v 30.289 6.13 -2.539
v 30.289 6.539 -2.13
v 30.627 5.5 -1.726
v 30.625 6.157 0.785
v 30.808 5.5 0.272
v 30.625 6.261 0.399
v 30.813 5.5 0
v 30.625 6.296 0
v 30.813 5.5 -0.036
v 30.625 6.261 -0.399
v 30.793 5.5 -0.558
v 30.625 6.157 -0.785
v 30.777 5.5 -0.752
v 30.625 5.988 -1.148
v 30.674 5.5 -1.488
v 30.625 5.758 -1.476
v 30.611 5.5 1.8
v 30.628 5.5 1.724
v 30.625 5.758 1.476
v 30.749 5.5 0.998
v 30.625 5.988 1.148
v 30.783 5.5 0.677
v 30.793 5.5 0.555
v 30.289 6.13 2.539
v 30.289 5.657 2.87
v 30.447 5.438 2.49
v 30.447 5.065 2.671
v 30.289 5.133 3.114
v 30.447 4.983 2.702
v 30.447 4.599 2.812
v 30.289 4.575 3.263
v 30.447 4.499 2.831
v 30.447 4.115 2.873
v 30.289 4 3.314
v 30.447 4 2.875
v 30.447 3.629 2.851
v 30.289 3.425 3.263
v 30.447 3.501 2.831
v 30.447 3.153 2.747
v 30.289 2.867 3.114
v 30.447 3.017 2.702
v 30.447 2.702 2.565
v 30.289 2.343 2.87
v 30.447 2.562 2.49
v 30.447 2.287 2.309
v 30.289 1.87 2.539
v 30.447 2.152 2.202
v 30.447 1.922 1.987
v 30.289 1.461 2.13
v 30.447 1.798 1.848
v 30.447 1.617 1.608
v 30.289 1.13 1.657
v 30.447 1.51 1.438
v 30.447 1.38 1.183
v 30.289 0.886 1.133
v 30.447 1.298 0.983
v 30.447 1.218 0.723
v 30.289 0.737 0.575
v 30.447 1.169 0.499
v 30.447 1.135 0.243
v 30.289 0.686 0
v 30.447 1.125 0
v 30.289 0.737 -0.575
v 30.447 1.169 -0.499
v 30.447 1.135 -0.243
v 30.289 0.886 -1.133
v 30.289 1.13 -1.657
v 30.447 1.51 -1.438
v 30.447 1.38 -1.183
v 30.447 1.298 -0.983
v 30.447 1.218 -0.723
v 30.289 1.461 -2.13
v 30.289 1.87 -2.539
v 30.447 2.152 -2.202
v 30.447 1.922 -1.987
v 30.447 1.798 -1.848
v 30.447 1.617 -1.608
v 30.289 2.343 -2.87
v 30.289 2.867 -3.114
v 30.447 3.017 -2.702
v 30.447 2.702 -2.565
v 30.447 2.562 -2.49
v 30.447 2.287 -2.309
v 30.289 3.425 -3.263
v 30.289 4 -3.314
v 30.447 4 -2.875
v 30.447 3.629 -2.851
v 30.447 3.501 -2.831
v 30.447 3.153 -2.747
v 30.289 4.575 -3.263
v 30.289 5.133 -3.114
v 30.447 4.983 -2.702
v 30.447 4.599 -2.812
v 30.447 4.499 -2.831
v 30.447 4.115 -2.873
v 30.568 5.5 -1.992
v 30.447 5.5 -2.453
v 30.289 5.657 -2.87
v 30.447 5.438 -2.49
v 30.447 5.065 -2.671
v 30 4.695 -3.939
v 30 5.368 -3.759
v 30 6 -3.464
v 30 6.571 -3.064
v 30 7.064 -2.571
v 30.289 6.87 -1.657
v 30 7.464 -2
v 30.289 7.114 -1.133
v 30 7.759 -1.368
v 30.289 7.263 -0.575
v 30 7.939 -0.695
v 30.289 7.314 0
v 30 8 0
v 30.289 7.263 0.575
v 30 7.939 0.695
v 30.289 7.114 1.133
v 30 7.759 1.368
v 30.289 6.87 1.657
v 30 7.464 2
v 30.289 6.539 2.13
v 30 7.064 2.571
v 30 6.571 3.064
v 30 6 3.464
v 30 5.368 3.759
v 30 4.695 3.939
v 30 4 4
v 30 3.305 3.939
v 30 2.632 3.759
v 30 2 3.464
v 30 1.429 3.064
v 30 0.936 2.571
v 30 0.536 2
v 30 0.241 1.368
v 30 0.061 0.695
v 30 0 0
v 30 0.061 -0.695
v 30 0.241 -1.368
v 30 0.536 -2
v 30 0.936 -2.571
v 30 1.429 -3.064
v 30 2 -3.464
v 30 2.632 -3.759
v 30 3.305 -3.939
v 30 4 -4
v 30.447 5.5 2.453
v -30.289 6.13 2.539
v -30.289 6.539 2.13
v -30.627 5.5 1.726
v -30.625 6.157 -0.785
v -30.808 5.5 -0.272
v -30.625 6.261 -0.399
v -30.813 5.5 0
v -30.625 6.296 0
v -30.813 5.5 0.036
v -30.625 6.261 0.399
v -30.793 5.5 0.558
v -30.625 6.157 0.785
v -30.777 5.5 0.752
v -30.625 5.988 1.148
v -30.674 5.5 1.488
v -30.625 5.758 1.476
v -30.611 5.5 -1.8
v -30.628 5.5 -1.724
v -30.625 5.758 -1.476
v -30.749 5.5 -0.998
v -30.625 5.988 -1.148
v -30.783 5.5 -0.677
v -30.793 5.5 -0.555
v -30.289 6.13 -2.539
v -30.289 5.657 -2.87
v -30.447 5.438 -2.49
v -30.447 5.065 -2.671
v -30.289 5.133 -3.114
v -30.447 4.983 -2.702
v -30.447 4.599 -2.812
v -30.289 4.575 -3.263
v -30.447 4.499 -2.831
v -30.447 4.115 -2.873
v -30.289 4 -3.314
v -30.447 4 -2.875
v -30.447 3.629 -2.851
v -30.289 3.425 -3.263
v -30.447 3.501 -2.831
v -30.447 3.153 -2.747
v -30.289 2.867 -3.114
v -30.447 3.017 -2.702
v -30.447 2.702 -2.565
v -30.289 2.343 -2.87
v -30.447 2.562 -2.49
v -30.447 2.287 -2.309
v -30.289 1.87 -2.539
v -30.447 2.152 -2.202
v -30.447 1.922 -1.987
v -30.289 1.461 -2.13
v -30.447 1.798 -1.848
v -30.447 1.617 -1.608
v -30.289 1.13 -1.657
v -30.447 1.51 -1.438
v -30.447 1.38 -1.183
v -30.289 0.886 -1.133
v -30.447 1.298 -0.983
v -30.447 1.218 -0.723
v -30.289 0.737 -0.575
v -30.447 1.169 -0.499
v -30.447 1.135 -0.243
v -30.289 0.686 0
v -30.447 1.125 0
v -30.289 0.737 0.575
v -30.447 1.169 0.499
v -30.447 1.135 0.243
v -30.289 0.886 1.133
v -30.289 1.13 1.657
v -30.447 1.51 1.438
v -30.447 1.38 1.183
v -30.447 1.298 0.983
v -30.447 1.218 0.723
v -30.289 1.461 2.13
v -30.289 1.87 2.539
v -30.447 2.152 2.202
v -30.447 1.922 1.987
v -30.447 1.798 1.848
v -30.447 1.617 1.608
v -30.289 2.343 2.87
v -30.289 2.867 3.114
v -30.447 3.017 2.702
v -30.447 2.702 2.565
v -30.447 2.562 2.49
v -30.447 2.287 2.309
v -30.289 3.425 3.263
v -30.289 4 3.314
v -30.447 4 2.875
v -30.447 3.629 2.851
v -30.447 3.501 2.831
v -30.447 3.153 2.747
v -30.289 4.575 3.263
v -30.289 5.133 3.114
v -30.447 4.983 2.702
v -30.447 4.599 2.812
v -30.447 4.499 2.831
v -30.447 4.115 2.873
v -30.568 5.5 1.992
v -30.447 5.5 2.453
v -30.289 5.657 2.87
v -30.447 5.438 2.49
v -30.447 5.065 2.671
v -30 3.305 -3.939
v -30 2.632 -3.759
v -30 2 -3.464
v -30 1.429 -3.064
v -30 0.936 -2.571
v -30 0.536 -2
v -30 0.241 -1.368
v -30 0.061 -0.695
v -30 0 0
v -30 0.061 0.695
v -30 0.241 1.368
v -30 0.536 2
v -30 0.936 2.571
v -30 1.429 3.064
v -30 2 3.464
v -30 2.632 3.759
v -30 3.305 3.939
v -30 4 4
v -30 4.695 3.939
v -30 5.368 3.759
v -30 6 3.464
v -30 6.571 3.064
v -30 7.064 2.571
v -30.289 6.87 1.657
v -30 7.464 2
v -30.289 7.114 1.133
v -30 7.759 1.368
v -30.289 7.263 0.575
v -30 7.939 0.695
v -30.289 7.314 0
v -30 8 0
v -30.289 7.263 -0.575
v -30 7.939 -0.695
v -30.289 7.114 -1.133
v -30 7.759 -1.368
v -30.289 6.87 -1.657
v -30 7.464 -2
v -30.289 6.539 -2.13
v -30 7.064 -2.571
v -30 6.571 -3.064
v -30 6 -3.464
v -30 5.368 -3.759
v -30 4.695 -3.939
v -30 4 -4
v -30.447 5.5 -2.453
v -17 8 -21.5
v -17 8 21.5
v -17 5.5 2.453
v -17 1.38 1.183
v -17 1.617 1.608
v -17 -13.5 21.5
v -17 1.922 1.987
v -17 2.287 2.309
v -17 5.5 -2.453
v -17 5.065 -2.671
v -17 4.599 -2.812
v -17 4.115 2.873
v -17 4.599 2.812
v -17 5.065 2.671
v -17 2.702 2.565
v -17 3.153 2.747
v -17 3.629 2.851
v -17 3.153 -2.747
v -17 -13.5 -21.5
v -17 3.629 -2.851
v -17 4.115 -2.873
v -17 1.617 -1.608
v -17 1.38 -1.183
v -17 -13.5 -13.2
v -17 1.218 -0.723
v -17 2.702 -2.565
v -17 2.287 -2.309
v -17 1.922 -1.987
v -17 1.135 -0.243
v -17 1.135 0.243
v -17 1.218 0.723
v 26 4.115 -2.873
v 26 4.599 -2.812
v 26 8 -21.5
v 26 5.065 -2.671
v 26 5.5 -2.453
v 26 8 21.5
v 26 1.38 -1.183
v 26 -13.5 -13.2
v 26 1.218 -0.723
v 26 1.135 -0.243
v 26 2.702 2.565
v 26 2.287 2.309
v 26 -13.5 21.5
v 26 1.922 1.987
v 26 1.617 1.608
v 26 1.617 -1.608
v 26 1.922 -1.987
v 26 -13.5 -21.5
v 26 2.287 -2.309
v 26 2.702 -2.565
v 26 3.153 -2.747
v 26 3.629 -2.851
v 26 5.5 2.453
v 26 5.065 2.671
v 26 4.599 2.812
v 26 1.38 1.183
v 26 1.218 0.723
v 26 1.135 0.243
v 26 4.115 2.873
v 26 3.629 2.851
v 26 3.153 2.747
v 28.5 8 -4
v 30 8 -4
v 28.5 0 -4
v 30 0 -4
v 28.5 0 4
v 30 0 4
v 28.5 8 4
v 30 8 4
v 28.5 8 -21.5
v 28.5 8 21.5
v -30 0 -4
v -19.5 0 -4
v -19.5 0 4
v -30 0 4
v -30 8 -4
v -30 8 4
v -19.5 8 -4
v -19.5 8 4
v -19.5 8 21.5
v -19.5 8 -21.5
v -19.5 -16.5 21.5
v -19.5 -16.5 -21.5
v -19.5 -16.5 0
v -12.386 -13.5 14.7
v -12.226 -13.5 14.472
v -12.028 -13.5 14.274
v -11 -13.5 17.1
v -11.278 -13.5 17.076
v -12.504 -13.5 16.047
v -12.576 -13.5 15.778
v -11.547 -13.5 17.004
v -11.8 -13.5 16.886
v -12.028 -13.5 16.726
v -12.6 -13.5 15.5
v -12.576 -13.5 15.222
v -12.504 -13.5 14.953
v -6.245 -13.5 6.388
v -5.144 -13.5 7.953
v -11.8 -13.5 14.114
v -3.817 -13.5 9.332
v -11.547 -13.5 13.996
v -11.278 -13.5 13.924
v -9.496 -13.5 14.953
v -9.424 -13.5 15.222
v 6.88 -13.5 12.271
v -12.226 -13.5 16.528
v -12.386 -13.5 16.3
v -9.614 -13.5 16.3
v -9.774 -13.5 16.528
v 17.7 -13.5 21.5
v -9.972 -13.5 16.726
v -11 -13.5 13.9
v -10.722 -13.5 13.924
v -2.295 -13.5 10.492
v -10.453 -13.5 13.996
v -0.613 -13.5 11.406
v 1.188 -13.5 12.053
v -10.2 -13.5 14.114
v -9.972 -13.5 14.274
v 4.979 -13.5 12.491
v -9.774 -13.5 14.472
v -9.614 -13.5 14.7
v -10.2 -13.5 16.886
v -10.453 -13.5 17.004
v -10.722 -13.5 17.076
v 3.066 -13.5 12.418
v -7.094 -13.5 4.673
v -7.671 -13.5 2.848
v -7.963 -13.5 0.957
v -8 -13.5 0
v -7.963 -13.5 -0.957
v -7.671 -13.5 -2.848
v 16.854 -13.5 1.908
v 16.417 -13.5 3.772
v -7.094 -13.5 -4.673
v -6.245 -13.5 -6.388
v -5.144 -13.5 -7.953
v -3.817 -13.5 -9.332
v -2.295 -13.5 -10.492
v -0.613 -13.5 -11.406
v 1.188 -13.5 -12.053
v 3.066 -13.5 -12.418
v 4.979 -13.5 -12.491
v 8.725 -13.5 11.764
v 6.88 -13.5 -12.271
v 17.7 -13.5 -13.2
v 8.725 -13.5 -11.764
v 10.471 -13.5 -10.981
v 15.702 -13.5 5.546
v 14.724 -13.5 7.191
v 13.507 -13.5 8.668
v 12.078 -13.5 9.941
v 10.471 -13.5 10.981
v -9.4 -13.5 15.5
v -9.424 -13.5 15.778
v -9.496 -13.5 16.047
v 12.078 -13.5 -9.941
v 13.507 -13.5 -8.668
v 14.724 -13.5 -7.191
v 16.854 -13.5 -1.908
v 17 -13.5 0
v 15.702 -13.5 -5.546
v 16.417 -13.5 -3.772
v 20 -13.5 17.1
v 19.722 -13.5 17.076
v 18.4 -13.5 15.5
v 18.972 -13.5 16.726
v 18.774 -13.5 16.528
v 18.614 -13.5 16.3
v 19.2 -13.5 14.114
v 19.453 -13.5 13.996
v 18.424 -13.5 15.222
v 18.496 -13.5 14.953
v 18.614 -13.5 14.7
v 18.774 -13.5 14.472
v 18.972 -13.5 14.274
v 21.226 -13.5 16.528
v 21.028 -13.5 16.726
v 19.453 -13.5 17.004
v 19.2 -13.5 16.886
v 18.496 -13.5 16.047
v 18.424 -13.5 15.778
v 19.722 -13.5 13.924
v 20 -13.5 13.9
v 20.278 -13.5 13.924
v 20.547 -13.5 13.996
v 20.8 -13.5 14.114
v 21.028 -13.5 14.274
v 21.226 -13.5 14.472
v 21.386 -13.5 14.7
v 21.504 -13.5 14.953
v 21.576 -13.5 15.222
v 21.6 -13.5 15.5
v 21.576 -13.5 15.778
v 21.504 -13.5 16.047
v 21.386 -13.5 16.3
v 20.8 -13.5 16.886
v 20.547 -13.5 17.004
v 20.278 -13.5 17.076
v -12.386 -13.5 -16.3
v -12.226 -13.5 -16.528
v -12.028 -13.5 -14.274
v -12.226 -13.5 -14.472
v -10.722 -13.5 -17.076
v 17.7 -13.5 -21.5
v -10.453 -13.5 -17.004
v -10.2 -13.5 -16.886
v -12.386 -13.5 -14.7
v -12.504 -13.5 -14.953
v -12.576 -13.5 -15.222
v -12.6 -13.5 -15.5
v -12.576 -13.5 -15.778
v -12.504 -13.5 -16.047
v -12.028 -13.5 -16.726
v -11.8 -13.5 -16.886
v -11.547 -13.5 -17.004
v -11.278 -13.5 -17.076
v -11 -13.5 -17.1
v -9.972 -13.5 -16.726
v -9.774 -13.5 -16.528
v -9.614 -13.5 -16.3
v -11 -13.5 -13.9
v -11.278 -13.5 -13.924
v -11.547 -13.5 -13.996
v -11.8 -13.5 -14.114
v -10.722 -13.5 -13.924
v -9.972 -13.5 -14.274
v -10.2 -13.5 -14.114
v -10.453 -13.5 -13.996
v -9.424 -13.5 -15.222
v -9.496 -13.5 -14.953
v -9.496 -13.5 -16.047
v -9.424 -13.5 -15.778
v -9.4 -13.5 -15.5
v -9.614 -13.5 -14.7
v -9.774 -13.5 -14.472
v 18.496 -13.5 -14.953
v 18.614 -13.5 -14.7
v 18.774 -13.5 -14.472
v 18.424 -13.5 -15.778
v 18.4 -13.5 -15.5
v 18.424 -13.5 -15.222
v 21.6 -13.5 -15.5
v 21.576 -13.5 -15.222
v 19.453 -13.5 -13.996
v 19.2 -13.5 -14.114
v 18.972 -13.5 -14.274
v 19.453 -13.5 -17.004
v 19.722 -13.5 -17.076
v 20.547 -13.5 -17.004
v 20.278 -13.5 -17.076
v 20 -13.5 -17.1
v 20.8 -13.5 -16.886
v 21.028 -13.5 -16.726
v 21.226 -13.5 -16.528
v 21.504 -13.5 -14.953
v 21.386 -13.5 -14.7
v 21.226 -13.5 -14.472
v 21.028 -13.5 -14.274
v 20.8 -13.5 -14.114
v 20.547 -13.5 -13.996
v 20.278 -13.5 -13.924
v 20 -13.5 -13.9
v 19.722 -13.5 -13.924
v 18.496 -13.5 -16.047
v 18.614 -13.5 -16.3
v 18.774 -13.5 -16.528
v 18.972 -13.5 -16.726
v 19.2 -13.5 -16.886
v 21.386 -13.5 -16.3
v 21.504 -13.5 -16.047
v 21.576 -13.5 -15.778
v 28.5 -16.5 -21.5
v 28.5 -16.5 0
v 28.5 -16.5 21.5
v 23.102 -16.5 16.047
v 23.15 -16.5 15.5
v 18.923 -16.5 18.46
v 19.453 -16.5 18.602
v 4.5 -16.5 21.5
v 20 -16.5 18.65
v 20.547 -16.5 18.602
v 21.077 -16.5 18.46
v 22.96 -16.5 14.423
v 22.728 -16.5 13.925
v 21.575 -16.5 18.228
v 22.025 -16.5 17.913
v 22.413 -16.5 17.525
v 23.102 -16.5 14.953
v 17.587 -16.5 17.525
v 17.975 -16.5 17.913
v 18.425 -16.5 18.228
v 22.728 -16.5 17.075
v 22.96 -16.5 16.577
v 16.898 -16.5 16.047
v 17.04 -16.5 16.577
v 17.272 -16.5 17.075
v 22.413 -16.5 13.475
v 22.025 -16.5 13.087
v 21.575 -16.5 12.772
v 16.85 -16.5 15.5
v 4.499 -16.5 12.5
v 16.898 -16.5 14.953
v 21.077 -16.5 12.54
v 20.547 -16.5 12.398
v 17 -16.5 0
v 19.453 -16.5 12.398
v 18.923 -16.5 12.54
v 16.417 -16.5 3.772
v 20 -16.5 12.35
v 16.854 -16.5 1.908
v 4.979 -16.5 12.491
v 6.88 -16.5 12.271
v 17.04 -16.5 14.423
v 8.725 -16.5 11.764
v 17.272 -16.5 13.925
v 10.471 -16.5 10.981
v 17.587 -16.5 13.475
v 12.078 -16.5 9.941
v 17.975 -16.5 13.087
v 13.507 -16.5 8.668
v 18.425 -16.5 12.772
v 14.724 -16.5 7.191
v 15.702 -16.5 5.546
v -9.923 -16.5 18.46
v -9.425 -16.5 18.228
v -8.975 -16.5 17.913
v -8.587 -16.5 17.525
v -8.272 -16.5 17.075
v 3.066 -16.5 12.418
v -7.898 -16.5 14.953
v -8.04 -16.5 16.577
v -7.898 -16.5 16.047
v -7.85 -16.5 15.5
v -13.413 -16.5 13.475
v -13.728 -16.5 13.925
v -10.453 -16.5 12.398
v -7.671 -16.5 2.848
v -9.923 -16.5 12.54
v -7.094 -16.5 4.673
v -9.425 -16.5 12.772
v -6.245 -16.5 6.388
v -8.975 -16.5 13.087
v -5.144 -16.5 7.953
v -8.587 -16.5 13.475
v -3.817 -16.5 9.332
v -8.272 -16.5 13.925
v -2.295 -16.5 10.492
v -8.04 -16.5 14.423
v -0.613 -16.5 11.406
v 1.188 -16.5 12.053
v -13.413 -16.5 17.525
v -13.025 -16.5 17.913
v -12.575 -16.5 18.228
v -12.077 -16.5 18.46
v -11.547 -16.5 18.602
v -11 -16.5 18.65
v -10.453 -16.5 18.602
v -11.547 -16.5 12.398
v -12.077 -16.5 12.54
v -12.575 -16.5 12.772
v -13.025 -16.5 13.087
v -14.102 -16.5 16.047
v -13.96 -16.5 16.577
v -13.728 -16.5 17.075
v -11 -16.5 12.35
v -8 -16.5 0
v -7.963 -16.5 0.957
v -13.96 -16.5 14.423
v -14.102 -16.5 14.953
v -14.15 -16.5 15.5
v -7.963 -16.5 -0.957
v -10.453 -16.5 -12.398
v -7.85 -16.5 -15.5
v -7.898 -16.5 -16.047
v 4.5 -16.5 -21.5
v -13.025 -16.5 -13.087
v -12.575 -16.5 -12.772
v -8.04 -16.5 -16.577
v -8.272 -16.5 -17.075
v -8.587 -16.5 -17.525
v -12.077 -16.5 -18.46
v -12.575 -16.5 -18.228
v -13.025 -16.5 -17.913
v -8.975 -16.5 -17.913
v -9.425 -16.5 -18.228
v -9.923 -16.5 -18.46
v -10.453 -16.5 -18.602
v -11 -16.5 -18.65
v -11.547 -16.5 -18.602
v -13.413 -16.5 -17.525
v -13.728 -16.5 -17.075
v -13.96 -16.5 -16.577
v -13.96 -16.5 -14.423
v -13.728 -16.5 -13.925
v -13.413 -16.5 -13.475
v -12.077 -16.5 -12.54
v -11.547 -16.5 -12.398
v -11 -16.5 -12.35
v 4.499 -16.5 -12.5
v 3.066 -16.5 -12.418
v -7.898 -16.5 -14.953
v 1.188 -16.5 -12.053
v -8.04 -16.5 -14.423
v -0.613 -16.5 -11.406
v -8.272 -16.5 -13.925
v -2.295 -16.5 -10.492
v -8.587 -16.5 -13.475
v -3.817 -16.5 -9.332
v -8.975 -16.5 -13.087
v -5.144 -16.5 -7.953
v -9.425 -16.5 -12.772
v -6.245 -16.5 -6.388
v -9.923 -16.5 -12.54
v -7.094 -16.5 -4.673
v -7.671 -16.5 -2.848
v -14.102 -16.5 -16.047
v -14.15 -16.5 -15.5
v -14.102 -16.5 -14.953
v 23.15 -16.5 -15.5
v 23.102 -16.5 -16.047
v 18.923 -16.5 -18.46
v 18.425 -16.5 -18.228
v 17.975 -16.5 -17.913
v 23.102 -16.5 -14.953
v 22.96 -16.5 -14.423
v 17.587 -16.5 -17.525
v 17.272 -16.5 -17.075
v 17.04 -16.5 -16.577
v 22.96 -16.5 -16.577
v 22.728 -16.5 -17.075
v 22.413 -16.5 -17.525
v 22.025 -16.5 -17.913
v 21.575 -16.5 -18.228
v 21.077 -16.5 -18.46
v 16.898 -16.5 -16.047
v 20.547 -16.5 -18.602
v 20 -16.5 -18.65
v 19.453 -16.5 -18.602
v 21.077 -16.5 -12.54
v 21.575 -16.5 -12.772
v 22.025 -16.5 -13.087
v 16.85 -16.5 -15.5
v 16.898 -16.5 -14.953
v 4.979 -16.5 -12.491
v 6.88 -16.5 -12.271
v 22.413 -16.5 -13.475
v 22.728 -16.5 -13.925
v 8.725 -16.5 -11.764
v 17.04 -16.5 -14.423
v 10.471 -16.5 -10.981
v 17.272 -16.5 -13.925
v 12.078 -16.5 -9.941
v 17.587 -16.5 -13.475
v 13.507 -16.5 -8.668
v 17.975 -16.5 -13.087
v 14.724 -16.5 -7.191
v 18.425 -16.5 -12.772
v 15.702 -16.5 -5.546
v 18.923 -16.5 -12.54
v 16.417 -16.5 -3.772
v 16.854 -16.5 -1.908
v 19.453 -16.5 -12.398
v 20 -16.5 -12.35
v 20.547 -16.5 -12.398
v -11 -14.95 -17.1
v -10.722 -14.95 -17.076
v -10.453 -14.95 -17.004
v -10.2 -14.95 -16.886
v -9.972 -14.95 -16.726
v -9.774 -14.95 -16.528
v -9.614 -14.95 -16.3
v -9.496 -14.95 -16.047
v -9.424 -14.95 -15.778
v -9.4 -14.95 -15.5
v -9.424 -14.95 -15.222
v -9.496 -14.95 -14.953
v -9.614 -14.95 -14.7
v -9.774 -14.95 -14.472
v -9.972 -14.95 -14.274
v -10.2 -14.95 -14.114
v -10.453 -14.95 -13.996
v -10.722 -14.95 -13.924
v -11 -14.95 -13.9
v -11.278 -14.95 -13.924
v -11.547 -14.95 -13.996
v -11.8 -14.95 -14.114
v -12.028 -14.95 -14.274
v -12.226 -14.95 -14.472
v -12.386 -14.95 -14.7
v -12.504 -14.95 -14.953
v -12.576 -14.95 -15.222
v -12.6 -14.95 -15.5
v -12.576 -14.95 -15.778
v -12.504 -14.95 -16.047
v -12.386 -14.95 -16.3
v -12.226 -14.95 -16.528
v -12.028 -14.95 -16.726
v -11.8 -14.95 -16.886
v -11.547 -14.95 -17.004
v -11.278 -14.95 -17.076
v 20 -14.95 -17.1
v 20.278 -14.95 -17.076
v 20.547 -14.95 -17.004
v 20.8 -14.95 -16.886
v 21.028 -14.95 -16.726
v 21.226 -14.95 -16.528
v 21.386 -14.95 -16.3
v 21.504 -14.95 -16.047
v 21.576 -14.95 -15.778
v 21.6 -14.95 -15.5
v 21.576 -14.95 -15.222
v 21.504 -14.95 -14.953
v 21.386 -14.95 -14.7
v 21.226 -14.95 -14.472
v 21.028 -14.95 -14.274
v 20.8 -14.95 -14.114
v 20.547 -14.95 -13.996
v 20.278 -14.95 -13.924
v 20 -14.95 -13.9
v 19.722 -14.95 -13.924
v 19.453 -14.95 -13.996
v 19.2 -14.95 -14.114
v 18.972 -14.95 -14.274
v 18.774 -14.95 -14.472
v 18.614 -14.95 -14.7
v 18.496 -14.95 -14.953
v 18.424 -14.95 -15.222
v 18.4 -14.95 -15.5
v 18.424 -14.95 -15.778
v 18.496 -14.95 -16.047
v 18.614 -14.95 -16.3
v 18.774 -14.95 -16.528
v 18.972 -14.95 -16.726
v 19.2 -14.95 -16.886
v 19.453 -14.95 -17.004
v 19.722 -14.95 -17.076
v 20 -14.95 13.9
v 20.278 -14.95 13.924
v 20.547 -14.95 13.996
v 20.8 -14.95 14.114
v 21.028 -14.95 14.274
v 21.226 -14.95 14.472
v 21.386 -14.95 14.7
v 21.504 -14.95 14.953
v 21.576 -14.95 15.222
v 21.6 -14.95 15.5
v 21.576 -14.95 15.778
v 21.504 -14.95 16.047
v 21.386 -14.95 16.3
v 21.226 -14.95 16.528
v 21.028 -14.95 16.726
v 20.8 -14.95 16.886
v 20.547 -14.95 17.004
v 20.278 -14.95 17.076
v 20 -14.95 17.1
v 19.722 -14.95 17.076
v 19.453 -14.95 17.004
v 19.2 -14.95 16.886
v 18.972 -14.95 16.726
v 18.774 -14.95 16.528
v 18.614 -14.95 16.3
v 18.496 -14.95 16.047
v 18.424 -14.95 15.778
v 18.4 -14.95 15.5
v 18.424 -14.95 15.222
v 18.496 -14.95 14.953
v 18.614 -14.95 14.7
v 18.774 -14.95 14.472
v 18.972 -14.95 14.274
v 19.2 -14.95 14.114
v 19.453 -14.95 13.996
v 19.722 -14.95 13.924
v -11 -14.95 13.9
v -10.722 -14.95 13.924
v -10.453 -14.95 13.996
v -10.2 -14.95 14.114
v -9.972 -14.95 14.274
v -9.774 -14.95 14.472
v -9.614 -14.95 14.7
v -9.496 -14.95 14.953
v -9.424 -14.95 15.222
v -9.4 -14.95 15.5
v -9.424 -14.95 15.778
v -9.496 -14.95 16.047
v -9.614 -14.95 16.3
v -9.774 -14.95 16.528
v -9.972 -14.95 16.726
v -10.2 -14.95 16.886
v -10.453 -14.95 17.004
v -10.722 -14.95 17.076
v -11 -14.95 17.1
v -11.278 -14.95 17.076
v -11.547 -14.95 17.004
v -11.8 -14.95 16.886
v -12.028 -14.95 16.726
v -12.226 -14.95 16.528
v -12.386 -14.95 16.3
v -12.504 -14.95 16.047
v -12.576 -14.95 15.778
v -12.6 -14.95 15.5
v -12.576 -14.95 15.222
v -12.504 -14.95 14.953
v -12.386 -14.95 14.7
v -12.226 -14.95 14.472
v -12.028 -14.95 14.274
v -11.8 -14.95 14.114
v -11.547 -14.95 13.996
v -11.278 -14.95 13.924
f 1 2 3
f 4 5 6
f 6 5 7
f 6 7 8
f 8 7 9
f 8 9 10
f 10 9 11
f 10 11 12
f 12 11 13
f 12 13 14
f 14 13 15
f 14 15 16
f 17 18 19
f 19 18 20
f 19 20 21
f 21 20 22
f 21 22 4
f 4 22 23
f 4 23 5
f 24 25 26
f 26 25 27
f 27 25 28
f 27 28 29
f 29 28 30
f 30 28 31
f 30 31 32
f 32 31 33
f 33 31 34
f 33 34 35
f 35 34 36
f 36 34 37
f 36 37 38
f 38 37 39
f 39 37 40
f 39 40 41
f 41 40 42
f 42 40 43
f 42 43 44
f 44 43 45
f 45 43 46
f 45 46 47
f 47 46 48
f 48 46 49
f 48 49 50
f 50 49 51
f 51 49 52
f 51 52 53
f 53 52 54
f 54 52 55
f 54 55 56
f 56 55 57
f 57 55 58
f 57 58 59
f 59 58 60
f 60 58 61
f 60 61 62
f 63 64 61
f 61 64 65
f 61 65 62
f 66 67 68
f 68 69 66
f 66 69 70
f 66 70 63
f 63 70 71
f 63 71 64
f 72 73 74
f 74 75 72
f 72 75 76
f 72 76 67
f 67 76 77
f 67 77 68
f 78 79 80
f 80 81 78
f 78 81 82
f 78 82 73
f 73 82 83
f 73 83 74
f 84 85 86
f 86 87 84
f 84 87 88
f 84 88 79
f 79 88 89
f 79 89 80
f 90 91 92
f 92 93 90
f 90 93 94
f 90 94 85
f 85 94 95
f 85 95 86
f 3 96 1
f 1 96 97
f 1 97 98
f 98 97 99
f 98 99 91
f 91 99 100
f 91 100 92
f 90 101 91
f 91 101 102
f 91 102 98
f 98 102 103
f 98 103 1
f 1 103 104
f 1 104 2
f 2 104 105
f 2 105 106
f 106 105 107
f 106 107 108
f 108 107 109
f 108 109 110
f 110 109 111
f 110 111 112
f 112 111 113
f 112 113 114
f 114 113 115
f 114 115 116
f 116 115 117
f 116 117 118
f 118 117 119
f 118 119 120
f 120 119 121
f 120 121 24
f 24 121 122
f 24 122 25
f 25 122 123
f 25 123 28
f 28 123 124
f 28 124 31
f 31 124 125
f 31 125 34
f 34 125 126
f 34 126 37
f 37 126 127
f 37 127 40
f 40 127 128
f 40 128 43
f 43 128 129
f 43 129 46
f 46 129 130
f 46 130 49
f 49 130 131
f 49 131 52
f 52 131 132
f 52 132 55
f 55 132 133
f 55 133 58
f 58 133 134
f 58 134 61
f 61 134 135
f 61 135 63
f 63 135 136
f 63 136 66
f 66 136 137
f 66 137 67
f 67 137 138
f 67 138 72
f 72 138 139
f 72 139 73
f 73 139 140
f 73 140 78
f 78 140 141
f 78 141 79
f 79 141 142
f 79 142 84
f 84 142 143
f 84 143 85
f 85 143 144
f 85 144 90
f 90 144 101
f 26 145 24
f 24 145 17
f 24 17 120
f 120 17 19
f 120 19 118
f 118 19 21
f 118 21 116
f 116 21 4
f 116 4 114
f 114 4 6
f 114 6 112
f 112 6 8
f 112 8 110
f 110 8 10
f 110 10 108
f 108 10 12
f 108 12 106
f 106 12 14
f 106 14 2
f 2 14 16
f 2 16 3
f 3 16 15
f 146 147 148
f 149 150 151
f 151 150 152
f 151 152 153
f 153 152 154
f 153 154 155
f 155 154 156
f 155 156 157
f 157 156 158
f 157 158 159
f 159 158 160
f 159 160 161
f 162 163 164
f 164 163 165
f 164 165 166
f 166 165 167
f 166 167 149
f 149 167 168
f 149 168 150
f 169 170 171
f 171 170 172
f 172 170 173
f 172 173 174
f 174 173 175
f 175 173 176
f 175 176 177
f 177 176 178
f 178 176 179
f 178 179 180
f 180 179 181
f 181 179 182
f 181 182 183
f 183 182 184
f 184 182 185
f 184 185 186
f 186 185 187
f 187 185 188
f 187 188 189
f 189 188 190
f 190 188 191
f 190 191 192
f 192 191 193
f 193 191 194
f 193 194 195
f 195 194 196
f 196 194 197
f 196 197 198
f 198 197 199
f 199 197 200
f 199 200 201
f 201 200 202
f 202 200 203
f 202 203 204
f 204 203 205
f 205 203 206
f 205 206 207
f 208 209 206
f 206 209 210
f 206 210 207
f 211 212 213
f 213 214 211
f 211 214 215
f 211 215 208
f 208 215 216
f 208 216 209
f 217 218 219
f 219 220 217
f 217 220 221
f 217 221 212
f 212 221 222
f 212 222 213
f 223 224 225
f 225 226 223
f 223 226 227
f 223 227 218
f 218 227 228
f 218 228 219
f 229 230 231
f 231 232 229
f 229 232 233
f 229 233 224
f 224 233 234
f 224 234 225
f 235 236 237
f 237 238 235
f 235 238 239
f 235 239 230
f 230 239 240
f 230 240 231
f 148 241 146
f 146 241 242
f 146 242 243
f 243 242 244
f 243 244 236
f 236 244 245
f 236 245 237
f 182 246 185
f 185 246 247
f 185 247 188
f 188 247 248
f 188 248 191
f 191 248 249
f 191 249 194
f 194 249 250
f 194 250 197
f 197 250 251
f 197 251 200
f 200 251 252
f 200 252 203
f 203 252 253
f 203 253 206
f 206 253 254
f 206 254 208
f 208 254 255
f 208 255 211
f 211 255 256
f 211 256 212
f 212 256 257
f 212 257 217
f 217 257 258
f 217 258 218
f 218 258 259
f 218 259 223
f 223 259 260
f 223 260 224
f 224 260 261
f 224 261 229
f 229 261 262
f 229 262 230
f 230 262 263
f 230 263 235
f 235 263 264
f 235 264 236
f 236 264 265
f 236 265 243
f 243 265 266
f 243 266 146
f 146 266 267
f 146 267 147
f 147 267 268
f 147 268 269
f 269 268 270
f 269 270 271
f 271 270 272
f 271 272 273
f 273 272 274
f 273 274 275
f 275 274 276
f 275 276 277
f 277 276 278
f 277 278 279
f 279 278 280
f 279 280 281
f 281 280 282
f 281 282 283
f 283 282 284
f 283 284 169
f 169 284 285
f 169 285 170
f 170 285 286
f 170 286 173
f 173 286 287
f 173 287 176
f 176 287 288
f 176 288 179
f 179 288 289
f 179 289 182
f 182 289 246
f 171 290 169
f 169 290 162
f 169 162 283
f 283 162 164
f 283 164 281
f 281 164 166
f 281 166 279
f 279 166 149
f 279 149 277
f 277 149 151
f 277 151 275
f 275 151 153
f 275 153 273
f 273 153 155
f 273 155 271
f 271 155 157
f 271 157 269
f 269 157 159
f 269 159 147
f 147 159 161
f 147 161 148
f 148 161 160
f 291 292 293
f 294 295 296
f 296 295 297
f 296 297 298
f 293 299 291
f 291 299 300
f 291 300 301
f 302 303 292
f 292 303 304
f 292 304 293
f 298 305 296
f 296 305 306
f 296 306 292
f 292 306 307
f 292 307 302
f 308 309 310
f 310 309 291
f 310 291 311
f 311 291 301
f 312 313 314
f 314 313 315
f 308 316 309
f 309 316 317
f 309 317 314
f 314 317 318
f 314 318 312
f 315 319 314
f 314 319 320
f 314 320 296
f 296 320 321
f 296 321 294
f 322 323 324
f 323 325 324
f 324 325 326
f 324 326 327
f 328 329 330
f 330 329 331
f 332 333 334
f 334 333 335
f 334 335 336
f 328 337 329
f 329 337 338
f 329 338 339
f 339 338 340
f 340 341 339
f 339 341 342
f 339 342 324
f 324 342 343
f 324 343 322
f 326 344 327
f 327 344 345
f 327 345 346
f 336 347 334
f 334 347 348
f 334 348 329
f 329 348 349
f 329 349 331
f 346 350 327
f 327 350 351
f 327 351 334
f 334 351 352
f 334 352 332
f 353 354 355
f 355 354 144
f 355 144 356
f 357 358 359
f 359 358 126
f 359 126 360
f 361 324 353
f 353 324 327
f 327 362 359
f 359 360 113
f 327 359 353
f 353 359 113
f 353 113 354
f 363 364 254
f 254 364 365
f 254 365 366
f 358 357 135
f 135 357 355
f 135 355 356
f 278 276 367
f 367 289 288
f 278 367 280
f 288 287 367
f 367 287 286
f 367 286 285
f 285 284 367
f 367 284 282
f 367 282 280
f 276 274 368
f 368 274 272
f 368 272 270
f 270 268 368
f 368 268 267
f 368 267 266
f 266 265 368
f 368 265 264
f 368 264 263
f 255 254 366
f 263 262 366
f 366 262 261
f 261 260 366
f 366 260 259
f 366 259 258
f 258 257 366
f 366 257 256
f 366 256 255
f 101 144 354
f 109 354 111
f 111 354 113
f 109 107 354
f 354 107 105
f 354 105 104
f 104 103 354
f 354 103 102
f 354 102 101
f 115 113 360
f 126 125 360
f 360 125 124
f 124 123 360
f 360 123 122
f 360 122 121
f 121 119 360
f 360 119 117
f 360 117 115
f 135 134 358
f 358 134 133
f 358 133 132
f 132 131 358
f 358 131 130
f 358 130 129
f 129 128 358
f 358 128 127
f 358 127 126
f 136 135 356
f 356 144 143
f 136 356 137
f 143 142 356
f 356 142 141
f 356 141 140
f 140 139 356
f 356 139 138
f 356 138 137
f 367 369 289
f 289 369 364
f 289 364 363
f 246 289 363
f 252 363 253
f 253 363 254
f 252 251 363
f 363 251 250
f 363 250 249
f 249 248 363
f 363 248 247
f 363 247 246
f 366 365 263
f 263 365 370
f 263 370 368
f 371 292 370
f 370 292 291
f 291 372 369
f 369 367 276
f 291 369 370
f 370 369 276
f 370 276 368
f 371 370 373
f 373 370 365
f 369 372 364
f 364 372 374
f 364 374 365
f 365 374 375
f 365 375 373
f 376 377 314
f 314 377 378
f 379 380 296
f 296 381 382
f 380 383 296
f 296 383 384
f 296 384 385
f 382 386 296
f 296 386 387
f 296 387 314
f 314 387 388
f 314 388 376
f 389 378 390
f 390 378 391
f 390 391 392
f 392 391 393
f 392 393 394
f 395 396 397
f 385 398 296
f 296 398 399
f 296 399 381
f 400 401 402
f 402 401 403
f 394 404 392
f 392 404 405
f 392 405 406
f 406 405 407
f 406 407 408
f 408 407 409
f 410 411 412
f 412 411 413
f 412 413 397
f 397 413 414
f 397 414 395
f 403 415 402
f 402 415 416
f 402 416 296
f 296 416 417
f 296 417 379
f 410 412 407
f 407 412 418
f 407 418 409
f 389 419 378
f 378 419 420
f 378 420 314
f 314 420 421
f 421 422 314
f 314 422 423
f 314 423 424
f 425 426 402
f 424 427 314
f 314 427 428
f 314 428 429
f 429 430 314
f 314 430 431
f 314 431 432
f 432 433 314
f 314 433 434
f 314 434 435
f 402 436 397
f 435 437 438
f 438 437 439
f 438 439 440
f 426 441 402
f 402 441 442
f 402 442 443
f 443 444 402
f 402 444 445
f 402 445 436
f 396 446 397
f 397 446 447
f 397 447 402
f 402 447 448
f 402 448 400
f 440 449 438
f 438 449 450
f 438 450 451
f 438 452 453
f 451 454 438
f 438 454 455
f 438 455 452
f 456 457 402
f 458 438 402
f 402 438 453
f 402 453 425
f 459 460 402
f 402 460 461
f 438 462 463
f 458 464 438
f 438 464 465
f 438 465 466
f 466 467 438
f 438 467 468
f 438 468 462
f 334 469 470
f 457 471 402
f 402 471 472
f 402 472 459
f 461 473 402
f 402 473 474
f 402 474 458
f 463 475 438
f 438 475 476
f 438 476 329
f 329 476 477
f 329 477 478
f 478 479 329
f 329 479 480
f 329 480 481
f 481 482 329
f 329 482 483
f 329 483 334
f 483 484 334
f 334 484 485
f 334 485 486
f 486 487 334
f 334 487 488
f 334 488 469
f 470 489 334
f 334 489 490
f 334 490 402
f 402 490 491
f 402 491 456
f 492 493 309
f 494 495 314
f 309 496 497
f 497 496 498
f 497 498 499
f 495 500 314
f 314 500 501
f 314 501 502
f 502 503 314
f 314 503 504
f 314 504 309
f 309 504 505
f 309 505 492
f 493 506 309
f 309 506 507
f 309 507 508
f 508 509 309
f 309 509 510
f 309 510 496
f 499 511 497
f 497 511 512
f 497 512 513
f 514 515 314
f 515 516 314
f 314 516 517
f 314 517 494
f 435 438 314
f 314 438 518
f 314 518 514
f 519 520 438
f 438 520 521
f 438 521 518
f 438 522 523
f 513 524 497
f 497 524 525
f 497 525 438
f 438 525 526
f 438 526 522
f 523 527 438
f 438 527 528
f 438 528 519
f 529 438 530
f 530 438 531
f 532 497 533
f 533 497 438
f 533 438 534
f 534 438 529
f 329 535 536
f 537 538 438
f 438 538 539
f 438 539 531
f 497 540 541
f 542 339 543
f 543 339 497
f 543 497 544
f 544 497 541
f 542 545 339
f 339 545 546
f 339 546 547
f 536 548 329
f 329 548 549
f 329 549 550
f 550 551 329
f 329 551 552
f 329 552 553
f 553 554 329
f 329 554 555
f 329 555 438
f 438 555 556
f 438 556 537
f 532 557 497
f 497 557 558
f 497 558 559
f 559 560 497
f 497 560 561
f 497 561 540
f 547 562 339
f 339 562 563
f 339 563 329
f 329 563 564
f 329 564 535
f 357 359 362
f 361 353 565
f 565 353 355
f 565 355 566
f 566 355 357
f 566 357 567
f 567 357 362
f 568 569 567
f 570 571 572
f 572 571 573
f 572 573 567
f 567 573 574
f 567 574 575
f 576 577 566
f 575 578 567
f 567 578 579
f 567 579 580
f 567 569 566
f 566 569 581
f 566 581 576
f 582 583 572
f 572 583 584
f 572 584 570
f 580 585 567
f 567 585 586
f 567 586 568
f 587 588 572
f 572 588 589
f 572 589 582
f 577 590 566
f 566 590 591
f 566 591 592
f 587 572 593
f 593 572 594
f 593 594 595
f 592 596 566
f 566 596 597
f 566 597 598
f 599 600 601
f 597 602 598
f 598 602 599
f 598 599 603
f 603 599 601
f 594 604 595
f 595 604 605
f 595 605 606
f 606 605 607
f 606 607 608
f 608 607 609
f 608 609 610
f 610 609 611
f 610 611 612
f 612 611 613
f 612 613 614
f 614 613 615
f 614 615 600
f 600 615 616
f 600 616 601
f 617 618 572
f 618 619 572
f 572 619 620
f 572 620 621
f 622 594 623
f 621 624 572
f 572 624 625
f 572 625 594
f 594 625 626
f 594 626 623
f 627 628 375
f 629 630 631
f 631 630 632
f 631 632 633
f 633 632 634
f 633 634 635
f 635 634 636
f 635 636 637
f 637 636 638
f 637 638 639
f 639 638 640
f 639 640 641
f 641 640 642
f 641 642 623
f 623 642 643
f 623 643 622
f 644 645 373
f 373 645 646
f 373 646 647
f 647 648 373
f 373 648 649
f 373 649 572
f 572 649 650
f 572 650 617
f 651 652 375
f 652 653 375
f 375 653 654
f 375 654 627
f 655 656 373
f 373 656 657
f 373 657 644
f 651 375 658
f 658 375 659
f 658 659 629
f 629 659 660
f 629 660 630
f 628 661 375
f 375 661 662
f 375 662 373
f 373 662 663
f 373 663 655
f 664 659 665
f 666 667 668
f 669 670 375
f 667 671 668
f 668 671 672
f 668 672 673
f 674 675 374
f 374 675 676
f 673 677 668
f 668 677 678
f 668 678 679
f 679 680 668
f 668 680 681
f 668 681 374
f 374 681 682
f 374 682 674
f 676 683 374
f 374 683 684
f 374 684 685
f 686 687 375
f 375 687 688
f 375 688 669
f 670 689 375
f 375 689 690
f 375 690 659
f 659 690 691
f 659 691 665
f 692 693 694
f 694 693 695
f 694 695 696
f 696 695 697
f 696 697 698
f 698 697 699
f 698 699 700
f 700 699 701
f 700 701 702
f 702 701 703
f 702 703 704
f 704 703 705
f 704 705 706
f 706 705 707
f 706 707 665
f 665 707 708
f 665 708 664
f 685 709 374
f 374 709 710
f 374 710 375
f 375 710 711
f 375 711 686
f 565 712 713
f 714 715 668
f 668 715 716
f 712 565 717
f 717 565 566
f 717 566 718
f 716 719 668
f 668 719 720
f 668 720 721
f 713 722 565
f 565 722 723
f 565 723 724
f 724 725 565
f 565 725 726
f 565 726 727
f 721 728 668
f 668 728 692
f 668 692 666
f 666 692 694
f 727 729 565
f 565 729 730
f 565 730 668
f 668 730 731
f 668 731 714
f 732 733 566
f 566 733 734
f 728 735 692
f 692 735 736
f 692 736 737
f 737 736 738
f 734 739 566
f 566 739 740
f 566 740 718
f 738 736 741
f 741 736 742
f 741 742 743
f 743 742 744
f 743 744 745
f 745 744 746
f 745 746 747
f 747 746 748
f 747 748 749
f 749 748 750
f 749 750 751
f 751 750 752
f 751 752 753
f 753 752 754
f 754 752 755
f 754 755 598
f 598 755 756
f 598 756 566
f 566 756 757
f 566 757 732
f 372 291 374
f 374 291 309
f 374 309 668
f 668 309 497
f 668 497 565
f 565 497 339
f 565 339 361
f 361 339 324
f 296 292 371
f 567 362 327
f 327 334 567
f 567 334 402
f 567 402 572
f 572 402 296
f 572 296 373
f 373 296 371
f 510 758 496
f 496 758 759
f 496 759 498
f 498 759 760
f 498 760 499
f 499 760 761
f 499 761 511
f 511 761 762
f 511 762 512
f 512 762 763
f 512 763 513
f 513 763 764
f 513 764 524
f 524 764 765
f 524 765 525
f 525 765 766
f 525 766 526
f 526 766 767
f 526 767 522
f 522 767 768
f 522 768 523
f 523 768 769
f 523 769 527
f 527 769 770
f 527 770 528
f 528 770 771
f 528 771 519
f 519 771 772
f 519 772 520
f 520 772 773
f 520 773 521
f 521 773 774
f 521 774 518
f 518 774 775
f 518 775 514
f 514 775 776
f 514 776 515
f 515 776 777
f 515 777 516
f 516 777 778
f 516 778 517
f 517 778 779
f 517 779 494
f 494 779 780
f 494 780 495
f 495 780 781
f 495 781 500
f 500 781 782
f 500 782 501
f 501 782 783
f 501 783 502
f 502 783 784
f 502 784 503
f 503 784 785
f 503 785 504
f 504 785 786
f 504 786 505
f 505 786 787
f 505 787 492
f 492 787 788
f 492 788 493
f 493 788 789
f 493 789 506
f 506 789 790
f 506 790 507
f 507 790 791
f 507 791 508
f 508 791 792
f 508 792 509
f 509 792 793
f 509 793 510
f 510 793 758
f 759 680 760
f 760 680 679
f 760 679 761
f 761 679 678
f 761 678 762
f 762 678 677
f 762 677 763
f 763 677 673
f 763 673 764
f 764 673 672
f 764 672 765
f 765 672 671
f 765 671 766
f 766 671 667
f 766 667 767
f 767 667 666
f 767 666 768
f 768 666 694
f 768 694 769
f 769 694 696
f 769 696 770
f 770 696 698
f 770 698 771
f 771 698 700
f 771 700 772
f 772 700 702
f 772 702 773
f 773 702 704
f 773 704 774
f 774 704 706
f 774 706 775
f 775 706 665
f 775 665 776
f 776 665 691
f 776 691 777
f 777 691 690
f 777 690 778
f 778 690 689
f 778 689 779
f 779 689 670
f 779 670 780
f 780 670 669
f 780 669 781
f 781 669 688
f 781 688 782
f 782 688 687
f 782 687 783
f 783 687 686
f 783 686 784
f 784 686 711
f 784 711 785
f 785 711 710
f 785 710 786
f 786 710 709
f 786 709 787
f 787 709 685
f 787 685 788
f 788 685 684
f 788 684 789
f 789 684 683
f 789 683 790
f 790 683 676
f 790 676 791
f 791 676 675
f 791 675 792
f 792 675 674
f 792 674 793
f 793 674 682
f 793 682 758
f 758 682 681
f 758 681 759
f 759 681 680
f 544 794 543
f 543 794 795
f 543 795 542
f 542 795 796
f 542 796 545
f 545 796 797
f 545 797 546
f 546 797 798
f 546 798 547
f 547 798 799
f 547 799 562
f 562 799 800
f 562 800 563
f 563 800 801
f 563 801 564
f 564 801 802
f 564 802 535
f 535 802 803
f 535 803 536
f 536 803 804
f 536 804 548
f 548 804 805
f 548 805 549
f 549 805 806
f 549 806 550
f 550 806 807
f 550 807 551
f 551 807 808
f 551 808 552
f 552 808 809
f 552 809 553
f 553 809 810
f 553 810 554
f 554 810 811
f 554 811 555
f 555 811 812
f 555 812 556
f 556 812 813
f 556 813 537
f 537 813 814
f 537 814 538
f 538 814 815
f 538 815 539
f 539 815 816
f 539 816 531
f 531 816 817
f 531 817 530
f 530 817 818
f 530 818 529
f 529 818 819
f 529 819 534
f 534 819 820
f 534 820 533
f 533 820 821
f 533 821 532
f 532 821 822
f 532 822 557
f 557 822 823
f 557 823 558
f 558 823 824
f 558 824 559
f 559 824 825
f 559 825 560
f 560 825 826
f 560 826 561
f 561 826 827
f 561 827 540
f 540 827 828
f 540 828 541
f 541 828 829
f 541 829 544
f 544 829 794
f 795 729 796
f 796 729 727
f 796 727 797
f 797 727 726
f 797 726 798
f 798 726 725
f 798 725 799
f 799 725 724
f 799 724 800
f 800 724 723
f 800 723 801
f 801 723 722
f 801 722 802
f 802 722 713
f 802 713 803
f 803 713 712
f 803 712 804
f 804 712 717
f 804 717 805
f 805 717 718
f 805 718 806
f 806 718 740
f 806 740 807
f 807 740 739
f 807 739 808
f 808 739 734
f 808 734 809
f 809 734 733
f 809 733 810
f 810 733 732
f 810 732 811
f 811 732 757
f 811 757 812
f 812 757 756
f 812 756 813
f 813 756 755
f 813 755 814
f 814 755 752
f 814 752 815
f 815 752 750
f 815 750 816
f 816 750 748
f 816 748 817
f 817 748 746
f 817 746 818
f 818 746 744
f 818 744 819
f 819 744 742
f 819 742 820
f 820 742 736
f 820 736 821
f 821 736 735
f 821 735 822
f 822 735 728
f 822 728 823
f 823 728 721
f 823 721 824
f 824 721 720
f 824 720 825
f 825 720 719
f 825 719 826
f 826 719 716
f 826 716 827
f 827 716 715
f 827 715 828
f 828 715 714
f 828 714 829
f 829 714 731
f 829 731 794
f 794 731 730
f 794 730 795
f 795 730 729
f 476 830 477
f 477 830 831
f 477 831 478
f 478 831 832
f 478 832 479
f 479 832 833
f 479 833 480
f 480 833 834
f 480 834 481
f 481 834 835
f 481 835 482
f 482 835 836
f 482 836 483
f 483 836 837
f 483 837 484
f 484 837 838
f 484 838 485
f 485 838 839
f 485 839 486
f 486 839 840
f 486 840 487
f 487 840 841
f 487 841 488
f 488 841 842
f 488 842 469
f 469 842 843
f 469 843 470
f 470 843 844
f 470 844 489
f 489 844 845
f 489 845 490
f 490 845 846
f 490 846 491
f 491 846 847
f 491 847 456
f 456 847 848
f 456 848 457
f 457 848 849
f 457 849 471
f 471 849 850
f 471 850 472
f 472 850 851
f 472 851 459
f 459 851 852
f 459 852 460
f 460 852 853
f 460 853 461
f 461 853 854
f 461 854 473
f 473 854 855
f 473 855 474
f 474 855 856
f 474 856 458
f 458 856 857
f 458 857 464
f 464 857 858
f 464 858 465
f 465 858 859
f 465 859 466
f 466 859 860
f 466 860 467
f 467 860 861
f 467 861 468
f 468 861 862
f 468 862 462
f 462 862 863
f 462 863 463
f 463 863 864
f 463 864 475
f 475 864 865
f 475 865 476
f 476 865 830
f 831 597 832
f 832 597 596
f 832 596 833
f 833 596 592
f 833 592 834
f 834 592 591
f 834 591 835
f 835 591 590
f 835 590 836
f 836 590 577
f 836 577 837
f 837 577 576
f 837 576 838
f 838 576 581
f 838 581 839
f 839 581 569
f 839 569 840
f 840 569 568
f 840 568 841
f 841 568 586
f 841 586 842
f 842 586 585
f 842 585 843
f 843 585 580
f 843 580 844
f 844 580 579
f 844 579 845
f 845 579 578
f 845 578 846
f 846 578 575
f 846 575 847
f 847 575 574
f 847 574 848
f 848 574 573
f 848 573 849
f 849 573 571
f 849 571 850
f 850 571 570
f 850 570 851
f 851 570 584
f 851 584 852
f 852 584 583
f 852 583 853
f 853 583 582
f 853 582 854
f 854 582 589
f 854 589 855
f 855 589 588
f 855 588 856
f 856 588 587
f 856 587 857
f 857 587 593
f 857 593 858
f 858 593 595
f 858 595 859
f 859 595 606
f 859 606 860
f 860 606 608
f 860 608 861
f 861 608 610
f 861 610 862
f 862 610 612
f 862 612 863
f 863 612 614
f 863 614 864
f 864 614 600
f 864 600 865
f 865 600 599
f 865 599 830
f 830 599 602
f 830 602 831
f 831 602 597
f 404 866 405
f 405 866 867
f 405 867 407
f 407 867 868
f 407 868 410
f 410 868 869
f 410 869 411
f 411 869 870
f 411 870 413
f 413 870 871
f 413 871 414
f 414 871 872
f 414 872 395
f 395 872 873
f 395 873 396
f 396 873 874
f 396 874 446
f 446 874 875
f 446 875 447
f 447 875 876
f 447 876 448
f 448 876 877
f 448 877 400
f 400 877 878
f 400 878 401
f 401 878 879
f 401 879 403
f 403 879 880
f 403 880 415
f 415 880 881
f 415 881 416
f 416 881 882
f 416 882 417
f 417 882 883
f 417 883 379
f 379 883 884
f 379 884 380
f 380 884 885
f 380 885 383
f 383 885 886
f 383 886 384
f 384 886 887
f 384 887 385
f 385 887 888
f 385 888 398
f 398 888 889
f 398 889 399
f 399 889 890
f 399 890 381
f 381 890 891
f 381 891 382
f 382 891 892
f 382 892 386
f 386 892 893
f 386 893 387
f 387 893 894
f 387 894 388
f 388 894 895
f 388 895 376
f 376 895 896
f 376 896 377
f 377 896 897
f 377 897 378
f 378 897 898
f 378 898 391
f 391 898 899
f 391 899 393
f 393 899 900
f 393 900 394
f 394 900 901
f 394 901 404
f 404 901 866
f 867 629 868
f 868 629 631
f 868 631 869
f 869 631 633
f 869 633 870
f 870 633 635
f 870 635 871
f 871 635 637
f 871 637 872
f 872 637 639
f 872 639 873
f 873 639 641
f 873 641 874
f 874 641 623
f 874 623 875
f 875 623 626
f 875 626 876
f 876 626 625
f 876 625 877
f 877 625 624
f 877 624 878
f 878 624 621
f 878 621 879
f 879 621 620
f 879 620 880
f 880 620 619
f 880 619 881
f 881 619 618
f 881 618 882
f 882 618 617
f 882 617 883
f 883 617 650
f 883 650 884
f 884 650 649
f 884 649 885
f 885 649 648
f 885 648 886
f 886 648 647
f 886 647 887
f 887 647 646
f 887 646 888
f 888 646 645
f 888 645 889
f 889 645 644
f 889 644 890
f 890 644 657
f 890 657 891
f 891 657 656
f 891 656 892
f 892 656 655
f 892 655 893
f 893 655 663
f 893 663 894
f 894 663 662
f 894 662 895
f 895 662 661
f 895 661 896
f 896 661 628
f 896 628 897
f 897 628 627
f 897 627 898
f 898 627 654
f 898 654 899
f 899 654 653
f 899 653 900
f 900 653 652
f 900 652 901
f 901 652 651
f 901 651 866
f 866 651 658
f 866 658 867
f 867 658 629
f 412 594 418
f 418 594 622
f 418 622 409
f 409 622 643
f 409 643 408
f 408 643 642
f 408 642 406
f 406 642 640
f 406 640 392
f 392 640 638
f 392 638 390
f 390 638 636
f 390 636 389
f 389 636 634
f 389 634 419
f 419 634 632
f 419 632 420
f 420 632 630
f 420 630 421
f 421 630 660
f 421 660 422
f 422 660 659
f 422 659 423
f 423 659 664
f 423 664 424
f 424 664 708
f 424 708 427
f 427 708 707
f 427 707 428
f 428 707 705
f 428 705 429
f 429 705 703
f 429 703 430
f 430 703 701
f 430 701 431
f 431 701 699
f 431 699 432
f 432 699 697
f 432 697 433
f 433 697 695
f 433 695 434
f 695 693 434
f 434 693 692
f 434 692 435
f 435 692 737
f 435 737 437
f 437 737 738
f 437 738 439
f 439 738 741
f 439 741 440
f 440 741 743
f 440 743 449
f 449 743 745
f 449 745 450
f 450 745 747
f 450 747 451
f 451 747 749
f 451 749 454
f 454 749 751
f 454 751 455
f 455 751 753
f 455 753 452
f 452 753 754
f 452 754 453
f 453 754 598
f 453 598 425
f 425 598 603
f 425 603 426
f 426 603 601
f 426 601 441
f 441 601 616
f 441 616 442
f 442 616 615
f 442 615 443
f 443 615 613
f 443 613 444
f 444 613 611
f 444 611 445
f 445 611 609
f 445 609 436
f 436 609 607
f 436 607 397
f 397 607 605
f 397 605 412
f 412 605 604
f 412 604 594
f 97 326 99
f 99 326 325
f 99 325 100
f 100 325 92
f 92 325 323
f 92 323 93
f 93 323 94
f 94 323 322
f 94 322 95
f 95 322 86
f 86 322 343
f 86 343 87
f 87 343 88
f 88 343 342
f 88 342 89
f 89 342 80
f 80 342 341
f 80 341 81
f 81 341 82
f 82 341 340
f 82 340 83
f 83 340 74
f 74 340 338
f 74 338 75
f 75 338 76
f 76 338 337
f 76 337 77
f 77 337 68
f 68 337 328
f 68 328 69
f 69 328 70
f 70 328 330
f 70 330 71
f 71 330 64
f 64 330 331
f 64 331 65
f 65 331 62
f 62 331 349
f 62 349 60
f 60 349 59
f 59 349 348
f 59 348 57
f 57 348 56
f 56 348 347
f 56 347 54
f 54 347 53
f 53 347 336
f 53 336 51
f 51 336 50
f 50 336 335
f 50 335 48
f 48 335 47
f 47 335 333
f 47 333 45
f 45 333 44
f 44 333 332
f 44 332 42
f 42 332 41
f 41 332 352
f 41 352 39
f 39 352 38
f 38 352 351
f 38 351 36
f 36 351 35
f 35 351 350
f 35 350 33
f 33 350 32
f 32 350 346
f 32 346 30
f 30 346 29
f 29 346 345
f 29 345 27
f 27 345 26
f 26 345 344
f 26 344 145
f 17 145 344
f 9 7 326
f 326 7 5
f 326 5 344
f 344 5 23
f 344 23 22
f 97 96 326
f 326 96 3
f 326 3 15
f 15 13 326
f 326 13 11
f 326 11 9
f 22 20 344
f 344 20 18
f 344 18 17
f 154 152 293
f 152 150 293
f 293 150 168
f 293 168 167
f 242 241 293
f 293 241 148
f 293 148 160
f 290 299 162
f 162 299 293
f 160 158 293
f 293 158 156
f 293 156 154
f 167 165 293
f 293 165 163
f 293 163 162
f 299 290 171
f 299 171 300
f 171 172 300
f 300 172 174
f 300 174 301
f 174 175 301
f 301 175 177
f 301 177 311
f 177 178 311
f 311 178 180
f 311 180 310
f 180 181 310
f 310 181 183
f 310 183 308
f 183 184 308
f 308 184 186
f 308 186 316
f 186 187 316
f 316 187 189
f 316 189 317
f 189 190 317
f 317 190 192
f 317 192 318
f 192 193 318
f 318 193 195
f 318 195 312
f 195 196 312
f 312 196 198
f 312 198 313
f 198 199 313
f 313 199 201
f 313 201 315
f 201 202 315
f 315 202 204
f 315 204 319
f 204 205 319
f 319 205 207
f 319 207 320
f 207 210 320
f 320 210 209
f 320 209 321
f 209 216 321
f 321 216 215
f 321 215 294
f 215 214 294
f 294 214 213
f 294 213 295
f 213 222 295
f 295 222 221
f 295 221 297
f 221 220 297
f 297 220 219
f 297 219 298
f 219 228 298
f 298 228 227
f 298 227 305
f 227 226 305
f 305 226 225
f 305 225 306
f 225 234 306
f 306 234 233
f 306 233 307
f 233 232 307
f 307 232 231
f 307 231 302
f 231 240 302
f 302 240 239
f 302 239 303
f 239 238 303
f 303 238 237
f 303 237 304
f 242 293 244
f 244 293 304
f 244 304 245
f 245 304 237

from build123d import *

# Parameters (mm, degrees)
SKETCH1_W                                           = 60
SKETCH1_H                                           = 8
BOSS_EXTRUDE1_DEPTH                                 = 8
BOSS_EXTRUDE2_DEPTH                                 = 17.5
BOSS_EXTRUDE2_DEPTH_BACK                            = 25.5
SKETCH5_W                                           = 43
SKETCH5_H                                           = 8
CUT_EXTRUDE2_DEPTH                                  = 17.5
SKETCH6_W                                           = 43
SKETCH6_H                                           = 8
BOSS_EXTRUDE3_DEPTH                                 = 2.5
SKETCH7_W                                           = 43
SKETCH7_H                                           = 8
BOSS_EXTRUDE4_DEPTH                                 = 2.5
CSK_FOR_M3_COUNTERSUNK_FLAT_HEAD_SCREW1_D           = 3.2
CSK_FOR_M3_COUNTERSUNK_FLAT_HEAD_SCREW1_CSINK_D     = 6.3
CSK_FOR_M3_COUNTERSUNK_FLAT_HEAD_SCREW1_CSINK_ANGLE = 90
SKETCH15_R                                          = 12.5
CUT_EXTRUDE3_DEPTH                                  = 5.5
CUT_EXTRUDE1_START                                  = -62.0000001
CUT_EXTRUDE1_DEPTH                                  = 62.0000001


with BuildPart() as part:
    # Sketch1 → Boss-Extrude1 (new body)
    with BuildSketch(Plane(origin=(0, 0, 0), x_dir=(1, 0, 0), z_dir=(0, 1, 0))):
        Rectangle(SKETCH1_W, SKETCH1_H)
    extrude(amount=BOSS_EXTRUDE1_DEPTH)

    # Sketch2 → Revolve1 (revolve)
    with BuildSketch(Plane(origin=(0, 4, 0), x_dir=(1, 0, 0), z_dir=(0, 1, 0))):
        with BuildLine():
            Line((30, 4), (30, 0))
            Line((30, 0), (31, 0))
            add(Edge.make_bspline(
                [(30, 4), (30.889676148, 2.05859871), (31, 0)],
                knots=[0, 0, 0, 1, 1, 1], degree=2))
        make_face()
    revolve1 = revolve(axis=Axis((30, 4, 0), (-1, 0, 0)))

    # Mirror1: Revolve1 across plane
    add(revolve1.mirror(Plane.ZY))

    # Sketch4 → Boss-Extrude2 (add, two sides: drawn at the far end of the back side and taken through both)
    with BuildSketch(Plane.XY.offset(4).offset(-BOSS_EXTRUDE2_DEPTH_BACK)):
        Polygon((28.5, 0), (26, 0), (26, -13.5), (-17, -13.5), (-17, 0), (-19.5, 0), (-19.5, -16.5), (28.5, -16.5), align=None)
    extrude(amount=BOSS_EXTRUDE2_DEPTH + BOSS_EXTRUDE2_DEPTH_BACK)

    # Sketch5 → Cut-Extrude2 (cut)
    with BuildSketch(Plane(origin=(0, 8, 0), x_dir=(1, 0, 0), z_dir=(0, 1, 0))):
        with Locations((4.5, 0)):
            Rectangle(SKETCH5_W, SKETCH5_H)
    extrude(amount=-CUT_EXTRUDE2_DEPTH, mode=Mode.SUBTRACT)

    # Sketch6 → Boss-Extrude3 (add)
    with BuildSketch(Plane.ZY.offset(-26)):
        with Locations((0, 4)):
            Rectangle(SKETCH6_W, SKETCH6_H)
    extrude(amount=-BOSS_EXTRUDE3_DEPTH)

    # Sketch7 → Boss-Extrude4 (add)
    with BuildSketch(Plane(origin=(-17, 0, 0), x_dir=(0, 0, -1), z_dir=(1, 0, 0))):
        with Locations((0, 4)):
            Rectangle(SKETCH7_W, SKETCH7_H)
    extrude(amount=-BOSS_EXTRUDE4_DEPTH)

    # CSK for M3 Countersunk Flat Head Screw1 (through all)
    with Locations(Plane(origin=(0, -16.5, 0), x_dir=(-1, 0, 0), z_dir=(0, -1, 0))):
        with Locations((11, -15.5), (-20, -15.5), (-20, 15.5), (11, 15.5)):
            CounterSinkHole(CSK_FOR_M3_COUNTERSUNK_FLAT_HEAD_SCREW1_D / 2, CSK_FOR_M3_COUNTERSUNK_FLAT_HEAD_SCREW1_CSINK_D / 2, counter_sink_angle=CSK_FOR_M3_COUNTERSUNK_FLAT_HEAD_SCREW1_CSINK_ANGLE)

    # Sketch15 → Cut-Extrude3 (cut)
    with BuildSketch(Plane(origin=(0, -16.5, 0), x_dir=(-1, 0, 0), z_dir=(0, -1, 0))):
        with Locations(Location((-4.5, 0, 0), (0, 0, 180))):
            Circle(SKETCH15_R)
    extrude(amount=-CUT_EXTRUDE3_DEPTH, mode=Mode.SUBTRACT)

    # Cut-Extrude1: read off the stored shape, not the designer's step
    # Cut-Extrude1 outline → Cut-Extrude1 (cut)
    with BuildSketch(Plane.ZY.offset(31).offset(CUT_EXTRUDE1_START)):
        with BuildLine():
            Line((2.452677109, 5.5), (-2.452677109, 5.5))
            ThreePointArc((-2.452677109, 5.5), (0, 1.125), (2.452677109, 5.5))
        make_face()
    extrude(amount=CUT_EXTRUDE1_DEPTH, mode=Mode.SUBTRACT)


solid = part.part
